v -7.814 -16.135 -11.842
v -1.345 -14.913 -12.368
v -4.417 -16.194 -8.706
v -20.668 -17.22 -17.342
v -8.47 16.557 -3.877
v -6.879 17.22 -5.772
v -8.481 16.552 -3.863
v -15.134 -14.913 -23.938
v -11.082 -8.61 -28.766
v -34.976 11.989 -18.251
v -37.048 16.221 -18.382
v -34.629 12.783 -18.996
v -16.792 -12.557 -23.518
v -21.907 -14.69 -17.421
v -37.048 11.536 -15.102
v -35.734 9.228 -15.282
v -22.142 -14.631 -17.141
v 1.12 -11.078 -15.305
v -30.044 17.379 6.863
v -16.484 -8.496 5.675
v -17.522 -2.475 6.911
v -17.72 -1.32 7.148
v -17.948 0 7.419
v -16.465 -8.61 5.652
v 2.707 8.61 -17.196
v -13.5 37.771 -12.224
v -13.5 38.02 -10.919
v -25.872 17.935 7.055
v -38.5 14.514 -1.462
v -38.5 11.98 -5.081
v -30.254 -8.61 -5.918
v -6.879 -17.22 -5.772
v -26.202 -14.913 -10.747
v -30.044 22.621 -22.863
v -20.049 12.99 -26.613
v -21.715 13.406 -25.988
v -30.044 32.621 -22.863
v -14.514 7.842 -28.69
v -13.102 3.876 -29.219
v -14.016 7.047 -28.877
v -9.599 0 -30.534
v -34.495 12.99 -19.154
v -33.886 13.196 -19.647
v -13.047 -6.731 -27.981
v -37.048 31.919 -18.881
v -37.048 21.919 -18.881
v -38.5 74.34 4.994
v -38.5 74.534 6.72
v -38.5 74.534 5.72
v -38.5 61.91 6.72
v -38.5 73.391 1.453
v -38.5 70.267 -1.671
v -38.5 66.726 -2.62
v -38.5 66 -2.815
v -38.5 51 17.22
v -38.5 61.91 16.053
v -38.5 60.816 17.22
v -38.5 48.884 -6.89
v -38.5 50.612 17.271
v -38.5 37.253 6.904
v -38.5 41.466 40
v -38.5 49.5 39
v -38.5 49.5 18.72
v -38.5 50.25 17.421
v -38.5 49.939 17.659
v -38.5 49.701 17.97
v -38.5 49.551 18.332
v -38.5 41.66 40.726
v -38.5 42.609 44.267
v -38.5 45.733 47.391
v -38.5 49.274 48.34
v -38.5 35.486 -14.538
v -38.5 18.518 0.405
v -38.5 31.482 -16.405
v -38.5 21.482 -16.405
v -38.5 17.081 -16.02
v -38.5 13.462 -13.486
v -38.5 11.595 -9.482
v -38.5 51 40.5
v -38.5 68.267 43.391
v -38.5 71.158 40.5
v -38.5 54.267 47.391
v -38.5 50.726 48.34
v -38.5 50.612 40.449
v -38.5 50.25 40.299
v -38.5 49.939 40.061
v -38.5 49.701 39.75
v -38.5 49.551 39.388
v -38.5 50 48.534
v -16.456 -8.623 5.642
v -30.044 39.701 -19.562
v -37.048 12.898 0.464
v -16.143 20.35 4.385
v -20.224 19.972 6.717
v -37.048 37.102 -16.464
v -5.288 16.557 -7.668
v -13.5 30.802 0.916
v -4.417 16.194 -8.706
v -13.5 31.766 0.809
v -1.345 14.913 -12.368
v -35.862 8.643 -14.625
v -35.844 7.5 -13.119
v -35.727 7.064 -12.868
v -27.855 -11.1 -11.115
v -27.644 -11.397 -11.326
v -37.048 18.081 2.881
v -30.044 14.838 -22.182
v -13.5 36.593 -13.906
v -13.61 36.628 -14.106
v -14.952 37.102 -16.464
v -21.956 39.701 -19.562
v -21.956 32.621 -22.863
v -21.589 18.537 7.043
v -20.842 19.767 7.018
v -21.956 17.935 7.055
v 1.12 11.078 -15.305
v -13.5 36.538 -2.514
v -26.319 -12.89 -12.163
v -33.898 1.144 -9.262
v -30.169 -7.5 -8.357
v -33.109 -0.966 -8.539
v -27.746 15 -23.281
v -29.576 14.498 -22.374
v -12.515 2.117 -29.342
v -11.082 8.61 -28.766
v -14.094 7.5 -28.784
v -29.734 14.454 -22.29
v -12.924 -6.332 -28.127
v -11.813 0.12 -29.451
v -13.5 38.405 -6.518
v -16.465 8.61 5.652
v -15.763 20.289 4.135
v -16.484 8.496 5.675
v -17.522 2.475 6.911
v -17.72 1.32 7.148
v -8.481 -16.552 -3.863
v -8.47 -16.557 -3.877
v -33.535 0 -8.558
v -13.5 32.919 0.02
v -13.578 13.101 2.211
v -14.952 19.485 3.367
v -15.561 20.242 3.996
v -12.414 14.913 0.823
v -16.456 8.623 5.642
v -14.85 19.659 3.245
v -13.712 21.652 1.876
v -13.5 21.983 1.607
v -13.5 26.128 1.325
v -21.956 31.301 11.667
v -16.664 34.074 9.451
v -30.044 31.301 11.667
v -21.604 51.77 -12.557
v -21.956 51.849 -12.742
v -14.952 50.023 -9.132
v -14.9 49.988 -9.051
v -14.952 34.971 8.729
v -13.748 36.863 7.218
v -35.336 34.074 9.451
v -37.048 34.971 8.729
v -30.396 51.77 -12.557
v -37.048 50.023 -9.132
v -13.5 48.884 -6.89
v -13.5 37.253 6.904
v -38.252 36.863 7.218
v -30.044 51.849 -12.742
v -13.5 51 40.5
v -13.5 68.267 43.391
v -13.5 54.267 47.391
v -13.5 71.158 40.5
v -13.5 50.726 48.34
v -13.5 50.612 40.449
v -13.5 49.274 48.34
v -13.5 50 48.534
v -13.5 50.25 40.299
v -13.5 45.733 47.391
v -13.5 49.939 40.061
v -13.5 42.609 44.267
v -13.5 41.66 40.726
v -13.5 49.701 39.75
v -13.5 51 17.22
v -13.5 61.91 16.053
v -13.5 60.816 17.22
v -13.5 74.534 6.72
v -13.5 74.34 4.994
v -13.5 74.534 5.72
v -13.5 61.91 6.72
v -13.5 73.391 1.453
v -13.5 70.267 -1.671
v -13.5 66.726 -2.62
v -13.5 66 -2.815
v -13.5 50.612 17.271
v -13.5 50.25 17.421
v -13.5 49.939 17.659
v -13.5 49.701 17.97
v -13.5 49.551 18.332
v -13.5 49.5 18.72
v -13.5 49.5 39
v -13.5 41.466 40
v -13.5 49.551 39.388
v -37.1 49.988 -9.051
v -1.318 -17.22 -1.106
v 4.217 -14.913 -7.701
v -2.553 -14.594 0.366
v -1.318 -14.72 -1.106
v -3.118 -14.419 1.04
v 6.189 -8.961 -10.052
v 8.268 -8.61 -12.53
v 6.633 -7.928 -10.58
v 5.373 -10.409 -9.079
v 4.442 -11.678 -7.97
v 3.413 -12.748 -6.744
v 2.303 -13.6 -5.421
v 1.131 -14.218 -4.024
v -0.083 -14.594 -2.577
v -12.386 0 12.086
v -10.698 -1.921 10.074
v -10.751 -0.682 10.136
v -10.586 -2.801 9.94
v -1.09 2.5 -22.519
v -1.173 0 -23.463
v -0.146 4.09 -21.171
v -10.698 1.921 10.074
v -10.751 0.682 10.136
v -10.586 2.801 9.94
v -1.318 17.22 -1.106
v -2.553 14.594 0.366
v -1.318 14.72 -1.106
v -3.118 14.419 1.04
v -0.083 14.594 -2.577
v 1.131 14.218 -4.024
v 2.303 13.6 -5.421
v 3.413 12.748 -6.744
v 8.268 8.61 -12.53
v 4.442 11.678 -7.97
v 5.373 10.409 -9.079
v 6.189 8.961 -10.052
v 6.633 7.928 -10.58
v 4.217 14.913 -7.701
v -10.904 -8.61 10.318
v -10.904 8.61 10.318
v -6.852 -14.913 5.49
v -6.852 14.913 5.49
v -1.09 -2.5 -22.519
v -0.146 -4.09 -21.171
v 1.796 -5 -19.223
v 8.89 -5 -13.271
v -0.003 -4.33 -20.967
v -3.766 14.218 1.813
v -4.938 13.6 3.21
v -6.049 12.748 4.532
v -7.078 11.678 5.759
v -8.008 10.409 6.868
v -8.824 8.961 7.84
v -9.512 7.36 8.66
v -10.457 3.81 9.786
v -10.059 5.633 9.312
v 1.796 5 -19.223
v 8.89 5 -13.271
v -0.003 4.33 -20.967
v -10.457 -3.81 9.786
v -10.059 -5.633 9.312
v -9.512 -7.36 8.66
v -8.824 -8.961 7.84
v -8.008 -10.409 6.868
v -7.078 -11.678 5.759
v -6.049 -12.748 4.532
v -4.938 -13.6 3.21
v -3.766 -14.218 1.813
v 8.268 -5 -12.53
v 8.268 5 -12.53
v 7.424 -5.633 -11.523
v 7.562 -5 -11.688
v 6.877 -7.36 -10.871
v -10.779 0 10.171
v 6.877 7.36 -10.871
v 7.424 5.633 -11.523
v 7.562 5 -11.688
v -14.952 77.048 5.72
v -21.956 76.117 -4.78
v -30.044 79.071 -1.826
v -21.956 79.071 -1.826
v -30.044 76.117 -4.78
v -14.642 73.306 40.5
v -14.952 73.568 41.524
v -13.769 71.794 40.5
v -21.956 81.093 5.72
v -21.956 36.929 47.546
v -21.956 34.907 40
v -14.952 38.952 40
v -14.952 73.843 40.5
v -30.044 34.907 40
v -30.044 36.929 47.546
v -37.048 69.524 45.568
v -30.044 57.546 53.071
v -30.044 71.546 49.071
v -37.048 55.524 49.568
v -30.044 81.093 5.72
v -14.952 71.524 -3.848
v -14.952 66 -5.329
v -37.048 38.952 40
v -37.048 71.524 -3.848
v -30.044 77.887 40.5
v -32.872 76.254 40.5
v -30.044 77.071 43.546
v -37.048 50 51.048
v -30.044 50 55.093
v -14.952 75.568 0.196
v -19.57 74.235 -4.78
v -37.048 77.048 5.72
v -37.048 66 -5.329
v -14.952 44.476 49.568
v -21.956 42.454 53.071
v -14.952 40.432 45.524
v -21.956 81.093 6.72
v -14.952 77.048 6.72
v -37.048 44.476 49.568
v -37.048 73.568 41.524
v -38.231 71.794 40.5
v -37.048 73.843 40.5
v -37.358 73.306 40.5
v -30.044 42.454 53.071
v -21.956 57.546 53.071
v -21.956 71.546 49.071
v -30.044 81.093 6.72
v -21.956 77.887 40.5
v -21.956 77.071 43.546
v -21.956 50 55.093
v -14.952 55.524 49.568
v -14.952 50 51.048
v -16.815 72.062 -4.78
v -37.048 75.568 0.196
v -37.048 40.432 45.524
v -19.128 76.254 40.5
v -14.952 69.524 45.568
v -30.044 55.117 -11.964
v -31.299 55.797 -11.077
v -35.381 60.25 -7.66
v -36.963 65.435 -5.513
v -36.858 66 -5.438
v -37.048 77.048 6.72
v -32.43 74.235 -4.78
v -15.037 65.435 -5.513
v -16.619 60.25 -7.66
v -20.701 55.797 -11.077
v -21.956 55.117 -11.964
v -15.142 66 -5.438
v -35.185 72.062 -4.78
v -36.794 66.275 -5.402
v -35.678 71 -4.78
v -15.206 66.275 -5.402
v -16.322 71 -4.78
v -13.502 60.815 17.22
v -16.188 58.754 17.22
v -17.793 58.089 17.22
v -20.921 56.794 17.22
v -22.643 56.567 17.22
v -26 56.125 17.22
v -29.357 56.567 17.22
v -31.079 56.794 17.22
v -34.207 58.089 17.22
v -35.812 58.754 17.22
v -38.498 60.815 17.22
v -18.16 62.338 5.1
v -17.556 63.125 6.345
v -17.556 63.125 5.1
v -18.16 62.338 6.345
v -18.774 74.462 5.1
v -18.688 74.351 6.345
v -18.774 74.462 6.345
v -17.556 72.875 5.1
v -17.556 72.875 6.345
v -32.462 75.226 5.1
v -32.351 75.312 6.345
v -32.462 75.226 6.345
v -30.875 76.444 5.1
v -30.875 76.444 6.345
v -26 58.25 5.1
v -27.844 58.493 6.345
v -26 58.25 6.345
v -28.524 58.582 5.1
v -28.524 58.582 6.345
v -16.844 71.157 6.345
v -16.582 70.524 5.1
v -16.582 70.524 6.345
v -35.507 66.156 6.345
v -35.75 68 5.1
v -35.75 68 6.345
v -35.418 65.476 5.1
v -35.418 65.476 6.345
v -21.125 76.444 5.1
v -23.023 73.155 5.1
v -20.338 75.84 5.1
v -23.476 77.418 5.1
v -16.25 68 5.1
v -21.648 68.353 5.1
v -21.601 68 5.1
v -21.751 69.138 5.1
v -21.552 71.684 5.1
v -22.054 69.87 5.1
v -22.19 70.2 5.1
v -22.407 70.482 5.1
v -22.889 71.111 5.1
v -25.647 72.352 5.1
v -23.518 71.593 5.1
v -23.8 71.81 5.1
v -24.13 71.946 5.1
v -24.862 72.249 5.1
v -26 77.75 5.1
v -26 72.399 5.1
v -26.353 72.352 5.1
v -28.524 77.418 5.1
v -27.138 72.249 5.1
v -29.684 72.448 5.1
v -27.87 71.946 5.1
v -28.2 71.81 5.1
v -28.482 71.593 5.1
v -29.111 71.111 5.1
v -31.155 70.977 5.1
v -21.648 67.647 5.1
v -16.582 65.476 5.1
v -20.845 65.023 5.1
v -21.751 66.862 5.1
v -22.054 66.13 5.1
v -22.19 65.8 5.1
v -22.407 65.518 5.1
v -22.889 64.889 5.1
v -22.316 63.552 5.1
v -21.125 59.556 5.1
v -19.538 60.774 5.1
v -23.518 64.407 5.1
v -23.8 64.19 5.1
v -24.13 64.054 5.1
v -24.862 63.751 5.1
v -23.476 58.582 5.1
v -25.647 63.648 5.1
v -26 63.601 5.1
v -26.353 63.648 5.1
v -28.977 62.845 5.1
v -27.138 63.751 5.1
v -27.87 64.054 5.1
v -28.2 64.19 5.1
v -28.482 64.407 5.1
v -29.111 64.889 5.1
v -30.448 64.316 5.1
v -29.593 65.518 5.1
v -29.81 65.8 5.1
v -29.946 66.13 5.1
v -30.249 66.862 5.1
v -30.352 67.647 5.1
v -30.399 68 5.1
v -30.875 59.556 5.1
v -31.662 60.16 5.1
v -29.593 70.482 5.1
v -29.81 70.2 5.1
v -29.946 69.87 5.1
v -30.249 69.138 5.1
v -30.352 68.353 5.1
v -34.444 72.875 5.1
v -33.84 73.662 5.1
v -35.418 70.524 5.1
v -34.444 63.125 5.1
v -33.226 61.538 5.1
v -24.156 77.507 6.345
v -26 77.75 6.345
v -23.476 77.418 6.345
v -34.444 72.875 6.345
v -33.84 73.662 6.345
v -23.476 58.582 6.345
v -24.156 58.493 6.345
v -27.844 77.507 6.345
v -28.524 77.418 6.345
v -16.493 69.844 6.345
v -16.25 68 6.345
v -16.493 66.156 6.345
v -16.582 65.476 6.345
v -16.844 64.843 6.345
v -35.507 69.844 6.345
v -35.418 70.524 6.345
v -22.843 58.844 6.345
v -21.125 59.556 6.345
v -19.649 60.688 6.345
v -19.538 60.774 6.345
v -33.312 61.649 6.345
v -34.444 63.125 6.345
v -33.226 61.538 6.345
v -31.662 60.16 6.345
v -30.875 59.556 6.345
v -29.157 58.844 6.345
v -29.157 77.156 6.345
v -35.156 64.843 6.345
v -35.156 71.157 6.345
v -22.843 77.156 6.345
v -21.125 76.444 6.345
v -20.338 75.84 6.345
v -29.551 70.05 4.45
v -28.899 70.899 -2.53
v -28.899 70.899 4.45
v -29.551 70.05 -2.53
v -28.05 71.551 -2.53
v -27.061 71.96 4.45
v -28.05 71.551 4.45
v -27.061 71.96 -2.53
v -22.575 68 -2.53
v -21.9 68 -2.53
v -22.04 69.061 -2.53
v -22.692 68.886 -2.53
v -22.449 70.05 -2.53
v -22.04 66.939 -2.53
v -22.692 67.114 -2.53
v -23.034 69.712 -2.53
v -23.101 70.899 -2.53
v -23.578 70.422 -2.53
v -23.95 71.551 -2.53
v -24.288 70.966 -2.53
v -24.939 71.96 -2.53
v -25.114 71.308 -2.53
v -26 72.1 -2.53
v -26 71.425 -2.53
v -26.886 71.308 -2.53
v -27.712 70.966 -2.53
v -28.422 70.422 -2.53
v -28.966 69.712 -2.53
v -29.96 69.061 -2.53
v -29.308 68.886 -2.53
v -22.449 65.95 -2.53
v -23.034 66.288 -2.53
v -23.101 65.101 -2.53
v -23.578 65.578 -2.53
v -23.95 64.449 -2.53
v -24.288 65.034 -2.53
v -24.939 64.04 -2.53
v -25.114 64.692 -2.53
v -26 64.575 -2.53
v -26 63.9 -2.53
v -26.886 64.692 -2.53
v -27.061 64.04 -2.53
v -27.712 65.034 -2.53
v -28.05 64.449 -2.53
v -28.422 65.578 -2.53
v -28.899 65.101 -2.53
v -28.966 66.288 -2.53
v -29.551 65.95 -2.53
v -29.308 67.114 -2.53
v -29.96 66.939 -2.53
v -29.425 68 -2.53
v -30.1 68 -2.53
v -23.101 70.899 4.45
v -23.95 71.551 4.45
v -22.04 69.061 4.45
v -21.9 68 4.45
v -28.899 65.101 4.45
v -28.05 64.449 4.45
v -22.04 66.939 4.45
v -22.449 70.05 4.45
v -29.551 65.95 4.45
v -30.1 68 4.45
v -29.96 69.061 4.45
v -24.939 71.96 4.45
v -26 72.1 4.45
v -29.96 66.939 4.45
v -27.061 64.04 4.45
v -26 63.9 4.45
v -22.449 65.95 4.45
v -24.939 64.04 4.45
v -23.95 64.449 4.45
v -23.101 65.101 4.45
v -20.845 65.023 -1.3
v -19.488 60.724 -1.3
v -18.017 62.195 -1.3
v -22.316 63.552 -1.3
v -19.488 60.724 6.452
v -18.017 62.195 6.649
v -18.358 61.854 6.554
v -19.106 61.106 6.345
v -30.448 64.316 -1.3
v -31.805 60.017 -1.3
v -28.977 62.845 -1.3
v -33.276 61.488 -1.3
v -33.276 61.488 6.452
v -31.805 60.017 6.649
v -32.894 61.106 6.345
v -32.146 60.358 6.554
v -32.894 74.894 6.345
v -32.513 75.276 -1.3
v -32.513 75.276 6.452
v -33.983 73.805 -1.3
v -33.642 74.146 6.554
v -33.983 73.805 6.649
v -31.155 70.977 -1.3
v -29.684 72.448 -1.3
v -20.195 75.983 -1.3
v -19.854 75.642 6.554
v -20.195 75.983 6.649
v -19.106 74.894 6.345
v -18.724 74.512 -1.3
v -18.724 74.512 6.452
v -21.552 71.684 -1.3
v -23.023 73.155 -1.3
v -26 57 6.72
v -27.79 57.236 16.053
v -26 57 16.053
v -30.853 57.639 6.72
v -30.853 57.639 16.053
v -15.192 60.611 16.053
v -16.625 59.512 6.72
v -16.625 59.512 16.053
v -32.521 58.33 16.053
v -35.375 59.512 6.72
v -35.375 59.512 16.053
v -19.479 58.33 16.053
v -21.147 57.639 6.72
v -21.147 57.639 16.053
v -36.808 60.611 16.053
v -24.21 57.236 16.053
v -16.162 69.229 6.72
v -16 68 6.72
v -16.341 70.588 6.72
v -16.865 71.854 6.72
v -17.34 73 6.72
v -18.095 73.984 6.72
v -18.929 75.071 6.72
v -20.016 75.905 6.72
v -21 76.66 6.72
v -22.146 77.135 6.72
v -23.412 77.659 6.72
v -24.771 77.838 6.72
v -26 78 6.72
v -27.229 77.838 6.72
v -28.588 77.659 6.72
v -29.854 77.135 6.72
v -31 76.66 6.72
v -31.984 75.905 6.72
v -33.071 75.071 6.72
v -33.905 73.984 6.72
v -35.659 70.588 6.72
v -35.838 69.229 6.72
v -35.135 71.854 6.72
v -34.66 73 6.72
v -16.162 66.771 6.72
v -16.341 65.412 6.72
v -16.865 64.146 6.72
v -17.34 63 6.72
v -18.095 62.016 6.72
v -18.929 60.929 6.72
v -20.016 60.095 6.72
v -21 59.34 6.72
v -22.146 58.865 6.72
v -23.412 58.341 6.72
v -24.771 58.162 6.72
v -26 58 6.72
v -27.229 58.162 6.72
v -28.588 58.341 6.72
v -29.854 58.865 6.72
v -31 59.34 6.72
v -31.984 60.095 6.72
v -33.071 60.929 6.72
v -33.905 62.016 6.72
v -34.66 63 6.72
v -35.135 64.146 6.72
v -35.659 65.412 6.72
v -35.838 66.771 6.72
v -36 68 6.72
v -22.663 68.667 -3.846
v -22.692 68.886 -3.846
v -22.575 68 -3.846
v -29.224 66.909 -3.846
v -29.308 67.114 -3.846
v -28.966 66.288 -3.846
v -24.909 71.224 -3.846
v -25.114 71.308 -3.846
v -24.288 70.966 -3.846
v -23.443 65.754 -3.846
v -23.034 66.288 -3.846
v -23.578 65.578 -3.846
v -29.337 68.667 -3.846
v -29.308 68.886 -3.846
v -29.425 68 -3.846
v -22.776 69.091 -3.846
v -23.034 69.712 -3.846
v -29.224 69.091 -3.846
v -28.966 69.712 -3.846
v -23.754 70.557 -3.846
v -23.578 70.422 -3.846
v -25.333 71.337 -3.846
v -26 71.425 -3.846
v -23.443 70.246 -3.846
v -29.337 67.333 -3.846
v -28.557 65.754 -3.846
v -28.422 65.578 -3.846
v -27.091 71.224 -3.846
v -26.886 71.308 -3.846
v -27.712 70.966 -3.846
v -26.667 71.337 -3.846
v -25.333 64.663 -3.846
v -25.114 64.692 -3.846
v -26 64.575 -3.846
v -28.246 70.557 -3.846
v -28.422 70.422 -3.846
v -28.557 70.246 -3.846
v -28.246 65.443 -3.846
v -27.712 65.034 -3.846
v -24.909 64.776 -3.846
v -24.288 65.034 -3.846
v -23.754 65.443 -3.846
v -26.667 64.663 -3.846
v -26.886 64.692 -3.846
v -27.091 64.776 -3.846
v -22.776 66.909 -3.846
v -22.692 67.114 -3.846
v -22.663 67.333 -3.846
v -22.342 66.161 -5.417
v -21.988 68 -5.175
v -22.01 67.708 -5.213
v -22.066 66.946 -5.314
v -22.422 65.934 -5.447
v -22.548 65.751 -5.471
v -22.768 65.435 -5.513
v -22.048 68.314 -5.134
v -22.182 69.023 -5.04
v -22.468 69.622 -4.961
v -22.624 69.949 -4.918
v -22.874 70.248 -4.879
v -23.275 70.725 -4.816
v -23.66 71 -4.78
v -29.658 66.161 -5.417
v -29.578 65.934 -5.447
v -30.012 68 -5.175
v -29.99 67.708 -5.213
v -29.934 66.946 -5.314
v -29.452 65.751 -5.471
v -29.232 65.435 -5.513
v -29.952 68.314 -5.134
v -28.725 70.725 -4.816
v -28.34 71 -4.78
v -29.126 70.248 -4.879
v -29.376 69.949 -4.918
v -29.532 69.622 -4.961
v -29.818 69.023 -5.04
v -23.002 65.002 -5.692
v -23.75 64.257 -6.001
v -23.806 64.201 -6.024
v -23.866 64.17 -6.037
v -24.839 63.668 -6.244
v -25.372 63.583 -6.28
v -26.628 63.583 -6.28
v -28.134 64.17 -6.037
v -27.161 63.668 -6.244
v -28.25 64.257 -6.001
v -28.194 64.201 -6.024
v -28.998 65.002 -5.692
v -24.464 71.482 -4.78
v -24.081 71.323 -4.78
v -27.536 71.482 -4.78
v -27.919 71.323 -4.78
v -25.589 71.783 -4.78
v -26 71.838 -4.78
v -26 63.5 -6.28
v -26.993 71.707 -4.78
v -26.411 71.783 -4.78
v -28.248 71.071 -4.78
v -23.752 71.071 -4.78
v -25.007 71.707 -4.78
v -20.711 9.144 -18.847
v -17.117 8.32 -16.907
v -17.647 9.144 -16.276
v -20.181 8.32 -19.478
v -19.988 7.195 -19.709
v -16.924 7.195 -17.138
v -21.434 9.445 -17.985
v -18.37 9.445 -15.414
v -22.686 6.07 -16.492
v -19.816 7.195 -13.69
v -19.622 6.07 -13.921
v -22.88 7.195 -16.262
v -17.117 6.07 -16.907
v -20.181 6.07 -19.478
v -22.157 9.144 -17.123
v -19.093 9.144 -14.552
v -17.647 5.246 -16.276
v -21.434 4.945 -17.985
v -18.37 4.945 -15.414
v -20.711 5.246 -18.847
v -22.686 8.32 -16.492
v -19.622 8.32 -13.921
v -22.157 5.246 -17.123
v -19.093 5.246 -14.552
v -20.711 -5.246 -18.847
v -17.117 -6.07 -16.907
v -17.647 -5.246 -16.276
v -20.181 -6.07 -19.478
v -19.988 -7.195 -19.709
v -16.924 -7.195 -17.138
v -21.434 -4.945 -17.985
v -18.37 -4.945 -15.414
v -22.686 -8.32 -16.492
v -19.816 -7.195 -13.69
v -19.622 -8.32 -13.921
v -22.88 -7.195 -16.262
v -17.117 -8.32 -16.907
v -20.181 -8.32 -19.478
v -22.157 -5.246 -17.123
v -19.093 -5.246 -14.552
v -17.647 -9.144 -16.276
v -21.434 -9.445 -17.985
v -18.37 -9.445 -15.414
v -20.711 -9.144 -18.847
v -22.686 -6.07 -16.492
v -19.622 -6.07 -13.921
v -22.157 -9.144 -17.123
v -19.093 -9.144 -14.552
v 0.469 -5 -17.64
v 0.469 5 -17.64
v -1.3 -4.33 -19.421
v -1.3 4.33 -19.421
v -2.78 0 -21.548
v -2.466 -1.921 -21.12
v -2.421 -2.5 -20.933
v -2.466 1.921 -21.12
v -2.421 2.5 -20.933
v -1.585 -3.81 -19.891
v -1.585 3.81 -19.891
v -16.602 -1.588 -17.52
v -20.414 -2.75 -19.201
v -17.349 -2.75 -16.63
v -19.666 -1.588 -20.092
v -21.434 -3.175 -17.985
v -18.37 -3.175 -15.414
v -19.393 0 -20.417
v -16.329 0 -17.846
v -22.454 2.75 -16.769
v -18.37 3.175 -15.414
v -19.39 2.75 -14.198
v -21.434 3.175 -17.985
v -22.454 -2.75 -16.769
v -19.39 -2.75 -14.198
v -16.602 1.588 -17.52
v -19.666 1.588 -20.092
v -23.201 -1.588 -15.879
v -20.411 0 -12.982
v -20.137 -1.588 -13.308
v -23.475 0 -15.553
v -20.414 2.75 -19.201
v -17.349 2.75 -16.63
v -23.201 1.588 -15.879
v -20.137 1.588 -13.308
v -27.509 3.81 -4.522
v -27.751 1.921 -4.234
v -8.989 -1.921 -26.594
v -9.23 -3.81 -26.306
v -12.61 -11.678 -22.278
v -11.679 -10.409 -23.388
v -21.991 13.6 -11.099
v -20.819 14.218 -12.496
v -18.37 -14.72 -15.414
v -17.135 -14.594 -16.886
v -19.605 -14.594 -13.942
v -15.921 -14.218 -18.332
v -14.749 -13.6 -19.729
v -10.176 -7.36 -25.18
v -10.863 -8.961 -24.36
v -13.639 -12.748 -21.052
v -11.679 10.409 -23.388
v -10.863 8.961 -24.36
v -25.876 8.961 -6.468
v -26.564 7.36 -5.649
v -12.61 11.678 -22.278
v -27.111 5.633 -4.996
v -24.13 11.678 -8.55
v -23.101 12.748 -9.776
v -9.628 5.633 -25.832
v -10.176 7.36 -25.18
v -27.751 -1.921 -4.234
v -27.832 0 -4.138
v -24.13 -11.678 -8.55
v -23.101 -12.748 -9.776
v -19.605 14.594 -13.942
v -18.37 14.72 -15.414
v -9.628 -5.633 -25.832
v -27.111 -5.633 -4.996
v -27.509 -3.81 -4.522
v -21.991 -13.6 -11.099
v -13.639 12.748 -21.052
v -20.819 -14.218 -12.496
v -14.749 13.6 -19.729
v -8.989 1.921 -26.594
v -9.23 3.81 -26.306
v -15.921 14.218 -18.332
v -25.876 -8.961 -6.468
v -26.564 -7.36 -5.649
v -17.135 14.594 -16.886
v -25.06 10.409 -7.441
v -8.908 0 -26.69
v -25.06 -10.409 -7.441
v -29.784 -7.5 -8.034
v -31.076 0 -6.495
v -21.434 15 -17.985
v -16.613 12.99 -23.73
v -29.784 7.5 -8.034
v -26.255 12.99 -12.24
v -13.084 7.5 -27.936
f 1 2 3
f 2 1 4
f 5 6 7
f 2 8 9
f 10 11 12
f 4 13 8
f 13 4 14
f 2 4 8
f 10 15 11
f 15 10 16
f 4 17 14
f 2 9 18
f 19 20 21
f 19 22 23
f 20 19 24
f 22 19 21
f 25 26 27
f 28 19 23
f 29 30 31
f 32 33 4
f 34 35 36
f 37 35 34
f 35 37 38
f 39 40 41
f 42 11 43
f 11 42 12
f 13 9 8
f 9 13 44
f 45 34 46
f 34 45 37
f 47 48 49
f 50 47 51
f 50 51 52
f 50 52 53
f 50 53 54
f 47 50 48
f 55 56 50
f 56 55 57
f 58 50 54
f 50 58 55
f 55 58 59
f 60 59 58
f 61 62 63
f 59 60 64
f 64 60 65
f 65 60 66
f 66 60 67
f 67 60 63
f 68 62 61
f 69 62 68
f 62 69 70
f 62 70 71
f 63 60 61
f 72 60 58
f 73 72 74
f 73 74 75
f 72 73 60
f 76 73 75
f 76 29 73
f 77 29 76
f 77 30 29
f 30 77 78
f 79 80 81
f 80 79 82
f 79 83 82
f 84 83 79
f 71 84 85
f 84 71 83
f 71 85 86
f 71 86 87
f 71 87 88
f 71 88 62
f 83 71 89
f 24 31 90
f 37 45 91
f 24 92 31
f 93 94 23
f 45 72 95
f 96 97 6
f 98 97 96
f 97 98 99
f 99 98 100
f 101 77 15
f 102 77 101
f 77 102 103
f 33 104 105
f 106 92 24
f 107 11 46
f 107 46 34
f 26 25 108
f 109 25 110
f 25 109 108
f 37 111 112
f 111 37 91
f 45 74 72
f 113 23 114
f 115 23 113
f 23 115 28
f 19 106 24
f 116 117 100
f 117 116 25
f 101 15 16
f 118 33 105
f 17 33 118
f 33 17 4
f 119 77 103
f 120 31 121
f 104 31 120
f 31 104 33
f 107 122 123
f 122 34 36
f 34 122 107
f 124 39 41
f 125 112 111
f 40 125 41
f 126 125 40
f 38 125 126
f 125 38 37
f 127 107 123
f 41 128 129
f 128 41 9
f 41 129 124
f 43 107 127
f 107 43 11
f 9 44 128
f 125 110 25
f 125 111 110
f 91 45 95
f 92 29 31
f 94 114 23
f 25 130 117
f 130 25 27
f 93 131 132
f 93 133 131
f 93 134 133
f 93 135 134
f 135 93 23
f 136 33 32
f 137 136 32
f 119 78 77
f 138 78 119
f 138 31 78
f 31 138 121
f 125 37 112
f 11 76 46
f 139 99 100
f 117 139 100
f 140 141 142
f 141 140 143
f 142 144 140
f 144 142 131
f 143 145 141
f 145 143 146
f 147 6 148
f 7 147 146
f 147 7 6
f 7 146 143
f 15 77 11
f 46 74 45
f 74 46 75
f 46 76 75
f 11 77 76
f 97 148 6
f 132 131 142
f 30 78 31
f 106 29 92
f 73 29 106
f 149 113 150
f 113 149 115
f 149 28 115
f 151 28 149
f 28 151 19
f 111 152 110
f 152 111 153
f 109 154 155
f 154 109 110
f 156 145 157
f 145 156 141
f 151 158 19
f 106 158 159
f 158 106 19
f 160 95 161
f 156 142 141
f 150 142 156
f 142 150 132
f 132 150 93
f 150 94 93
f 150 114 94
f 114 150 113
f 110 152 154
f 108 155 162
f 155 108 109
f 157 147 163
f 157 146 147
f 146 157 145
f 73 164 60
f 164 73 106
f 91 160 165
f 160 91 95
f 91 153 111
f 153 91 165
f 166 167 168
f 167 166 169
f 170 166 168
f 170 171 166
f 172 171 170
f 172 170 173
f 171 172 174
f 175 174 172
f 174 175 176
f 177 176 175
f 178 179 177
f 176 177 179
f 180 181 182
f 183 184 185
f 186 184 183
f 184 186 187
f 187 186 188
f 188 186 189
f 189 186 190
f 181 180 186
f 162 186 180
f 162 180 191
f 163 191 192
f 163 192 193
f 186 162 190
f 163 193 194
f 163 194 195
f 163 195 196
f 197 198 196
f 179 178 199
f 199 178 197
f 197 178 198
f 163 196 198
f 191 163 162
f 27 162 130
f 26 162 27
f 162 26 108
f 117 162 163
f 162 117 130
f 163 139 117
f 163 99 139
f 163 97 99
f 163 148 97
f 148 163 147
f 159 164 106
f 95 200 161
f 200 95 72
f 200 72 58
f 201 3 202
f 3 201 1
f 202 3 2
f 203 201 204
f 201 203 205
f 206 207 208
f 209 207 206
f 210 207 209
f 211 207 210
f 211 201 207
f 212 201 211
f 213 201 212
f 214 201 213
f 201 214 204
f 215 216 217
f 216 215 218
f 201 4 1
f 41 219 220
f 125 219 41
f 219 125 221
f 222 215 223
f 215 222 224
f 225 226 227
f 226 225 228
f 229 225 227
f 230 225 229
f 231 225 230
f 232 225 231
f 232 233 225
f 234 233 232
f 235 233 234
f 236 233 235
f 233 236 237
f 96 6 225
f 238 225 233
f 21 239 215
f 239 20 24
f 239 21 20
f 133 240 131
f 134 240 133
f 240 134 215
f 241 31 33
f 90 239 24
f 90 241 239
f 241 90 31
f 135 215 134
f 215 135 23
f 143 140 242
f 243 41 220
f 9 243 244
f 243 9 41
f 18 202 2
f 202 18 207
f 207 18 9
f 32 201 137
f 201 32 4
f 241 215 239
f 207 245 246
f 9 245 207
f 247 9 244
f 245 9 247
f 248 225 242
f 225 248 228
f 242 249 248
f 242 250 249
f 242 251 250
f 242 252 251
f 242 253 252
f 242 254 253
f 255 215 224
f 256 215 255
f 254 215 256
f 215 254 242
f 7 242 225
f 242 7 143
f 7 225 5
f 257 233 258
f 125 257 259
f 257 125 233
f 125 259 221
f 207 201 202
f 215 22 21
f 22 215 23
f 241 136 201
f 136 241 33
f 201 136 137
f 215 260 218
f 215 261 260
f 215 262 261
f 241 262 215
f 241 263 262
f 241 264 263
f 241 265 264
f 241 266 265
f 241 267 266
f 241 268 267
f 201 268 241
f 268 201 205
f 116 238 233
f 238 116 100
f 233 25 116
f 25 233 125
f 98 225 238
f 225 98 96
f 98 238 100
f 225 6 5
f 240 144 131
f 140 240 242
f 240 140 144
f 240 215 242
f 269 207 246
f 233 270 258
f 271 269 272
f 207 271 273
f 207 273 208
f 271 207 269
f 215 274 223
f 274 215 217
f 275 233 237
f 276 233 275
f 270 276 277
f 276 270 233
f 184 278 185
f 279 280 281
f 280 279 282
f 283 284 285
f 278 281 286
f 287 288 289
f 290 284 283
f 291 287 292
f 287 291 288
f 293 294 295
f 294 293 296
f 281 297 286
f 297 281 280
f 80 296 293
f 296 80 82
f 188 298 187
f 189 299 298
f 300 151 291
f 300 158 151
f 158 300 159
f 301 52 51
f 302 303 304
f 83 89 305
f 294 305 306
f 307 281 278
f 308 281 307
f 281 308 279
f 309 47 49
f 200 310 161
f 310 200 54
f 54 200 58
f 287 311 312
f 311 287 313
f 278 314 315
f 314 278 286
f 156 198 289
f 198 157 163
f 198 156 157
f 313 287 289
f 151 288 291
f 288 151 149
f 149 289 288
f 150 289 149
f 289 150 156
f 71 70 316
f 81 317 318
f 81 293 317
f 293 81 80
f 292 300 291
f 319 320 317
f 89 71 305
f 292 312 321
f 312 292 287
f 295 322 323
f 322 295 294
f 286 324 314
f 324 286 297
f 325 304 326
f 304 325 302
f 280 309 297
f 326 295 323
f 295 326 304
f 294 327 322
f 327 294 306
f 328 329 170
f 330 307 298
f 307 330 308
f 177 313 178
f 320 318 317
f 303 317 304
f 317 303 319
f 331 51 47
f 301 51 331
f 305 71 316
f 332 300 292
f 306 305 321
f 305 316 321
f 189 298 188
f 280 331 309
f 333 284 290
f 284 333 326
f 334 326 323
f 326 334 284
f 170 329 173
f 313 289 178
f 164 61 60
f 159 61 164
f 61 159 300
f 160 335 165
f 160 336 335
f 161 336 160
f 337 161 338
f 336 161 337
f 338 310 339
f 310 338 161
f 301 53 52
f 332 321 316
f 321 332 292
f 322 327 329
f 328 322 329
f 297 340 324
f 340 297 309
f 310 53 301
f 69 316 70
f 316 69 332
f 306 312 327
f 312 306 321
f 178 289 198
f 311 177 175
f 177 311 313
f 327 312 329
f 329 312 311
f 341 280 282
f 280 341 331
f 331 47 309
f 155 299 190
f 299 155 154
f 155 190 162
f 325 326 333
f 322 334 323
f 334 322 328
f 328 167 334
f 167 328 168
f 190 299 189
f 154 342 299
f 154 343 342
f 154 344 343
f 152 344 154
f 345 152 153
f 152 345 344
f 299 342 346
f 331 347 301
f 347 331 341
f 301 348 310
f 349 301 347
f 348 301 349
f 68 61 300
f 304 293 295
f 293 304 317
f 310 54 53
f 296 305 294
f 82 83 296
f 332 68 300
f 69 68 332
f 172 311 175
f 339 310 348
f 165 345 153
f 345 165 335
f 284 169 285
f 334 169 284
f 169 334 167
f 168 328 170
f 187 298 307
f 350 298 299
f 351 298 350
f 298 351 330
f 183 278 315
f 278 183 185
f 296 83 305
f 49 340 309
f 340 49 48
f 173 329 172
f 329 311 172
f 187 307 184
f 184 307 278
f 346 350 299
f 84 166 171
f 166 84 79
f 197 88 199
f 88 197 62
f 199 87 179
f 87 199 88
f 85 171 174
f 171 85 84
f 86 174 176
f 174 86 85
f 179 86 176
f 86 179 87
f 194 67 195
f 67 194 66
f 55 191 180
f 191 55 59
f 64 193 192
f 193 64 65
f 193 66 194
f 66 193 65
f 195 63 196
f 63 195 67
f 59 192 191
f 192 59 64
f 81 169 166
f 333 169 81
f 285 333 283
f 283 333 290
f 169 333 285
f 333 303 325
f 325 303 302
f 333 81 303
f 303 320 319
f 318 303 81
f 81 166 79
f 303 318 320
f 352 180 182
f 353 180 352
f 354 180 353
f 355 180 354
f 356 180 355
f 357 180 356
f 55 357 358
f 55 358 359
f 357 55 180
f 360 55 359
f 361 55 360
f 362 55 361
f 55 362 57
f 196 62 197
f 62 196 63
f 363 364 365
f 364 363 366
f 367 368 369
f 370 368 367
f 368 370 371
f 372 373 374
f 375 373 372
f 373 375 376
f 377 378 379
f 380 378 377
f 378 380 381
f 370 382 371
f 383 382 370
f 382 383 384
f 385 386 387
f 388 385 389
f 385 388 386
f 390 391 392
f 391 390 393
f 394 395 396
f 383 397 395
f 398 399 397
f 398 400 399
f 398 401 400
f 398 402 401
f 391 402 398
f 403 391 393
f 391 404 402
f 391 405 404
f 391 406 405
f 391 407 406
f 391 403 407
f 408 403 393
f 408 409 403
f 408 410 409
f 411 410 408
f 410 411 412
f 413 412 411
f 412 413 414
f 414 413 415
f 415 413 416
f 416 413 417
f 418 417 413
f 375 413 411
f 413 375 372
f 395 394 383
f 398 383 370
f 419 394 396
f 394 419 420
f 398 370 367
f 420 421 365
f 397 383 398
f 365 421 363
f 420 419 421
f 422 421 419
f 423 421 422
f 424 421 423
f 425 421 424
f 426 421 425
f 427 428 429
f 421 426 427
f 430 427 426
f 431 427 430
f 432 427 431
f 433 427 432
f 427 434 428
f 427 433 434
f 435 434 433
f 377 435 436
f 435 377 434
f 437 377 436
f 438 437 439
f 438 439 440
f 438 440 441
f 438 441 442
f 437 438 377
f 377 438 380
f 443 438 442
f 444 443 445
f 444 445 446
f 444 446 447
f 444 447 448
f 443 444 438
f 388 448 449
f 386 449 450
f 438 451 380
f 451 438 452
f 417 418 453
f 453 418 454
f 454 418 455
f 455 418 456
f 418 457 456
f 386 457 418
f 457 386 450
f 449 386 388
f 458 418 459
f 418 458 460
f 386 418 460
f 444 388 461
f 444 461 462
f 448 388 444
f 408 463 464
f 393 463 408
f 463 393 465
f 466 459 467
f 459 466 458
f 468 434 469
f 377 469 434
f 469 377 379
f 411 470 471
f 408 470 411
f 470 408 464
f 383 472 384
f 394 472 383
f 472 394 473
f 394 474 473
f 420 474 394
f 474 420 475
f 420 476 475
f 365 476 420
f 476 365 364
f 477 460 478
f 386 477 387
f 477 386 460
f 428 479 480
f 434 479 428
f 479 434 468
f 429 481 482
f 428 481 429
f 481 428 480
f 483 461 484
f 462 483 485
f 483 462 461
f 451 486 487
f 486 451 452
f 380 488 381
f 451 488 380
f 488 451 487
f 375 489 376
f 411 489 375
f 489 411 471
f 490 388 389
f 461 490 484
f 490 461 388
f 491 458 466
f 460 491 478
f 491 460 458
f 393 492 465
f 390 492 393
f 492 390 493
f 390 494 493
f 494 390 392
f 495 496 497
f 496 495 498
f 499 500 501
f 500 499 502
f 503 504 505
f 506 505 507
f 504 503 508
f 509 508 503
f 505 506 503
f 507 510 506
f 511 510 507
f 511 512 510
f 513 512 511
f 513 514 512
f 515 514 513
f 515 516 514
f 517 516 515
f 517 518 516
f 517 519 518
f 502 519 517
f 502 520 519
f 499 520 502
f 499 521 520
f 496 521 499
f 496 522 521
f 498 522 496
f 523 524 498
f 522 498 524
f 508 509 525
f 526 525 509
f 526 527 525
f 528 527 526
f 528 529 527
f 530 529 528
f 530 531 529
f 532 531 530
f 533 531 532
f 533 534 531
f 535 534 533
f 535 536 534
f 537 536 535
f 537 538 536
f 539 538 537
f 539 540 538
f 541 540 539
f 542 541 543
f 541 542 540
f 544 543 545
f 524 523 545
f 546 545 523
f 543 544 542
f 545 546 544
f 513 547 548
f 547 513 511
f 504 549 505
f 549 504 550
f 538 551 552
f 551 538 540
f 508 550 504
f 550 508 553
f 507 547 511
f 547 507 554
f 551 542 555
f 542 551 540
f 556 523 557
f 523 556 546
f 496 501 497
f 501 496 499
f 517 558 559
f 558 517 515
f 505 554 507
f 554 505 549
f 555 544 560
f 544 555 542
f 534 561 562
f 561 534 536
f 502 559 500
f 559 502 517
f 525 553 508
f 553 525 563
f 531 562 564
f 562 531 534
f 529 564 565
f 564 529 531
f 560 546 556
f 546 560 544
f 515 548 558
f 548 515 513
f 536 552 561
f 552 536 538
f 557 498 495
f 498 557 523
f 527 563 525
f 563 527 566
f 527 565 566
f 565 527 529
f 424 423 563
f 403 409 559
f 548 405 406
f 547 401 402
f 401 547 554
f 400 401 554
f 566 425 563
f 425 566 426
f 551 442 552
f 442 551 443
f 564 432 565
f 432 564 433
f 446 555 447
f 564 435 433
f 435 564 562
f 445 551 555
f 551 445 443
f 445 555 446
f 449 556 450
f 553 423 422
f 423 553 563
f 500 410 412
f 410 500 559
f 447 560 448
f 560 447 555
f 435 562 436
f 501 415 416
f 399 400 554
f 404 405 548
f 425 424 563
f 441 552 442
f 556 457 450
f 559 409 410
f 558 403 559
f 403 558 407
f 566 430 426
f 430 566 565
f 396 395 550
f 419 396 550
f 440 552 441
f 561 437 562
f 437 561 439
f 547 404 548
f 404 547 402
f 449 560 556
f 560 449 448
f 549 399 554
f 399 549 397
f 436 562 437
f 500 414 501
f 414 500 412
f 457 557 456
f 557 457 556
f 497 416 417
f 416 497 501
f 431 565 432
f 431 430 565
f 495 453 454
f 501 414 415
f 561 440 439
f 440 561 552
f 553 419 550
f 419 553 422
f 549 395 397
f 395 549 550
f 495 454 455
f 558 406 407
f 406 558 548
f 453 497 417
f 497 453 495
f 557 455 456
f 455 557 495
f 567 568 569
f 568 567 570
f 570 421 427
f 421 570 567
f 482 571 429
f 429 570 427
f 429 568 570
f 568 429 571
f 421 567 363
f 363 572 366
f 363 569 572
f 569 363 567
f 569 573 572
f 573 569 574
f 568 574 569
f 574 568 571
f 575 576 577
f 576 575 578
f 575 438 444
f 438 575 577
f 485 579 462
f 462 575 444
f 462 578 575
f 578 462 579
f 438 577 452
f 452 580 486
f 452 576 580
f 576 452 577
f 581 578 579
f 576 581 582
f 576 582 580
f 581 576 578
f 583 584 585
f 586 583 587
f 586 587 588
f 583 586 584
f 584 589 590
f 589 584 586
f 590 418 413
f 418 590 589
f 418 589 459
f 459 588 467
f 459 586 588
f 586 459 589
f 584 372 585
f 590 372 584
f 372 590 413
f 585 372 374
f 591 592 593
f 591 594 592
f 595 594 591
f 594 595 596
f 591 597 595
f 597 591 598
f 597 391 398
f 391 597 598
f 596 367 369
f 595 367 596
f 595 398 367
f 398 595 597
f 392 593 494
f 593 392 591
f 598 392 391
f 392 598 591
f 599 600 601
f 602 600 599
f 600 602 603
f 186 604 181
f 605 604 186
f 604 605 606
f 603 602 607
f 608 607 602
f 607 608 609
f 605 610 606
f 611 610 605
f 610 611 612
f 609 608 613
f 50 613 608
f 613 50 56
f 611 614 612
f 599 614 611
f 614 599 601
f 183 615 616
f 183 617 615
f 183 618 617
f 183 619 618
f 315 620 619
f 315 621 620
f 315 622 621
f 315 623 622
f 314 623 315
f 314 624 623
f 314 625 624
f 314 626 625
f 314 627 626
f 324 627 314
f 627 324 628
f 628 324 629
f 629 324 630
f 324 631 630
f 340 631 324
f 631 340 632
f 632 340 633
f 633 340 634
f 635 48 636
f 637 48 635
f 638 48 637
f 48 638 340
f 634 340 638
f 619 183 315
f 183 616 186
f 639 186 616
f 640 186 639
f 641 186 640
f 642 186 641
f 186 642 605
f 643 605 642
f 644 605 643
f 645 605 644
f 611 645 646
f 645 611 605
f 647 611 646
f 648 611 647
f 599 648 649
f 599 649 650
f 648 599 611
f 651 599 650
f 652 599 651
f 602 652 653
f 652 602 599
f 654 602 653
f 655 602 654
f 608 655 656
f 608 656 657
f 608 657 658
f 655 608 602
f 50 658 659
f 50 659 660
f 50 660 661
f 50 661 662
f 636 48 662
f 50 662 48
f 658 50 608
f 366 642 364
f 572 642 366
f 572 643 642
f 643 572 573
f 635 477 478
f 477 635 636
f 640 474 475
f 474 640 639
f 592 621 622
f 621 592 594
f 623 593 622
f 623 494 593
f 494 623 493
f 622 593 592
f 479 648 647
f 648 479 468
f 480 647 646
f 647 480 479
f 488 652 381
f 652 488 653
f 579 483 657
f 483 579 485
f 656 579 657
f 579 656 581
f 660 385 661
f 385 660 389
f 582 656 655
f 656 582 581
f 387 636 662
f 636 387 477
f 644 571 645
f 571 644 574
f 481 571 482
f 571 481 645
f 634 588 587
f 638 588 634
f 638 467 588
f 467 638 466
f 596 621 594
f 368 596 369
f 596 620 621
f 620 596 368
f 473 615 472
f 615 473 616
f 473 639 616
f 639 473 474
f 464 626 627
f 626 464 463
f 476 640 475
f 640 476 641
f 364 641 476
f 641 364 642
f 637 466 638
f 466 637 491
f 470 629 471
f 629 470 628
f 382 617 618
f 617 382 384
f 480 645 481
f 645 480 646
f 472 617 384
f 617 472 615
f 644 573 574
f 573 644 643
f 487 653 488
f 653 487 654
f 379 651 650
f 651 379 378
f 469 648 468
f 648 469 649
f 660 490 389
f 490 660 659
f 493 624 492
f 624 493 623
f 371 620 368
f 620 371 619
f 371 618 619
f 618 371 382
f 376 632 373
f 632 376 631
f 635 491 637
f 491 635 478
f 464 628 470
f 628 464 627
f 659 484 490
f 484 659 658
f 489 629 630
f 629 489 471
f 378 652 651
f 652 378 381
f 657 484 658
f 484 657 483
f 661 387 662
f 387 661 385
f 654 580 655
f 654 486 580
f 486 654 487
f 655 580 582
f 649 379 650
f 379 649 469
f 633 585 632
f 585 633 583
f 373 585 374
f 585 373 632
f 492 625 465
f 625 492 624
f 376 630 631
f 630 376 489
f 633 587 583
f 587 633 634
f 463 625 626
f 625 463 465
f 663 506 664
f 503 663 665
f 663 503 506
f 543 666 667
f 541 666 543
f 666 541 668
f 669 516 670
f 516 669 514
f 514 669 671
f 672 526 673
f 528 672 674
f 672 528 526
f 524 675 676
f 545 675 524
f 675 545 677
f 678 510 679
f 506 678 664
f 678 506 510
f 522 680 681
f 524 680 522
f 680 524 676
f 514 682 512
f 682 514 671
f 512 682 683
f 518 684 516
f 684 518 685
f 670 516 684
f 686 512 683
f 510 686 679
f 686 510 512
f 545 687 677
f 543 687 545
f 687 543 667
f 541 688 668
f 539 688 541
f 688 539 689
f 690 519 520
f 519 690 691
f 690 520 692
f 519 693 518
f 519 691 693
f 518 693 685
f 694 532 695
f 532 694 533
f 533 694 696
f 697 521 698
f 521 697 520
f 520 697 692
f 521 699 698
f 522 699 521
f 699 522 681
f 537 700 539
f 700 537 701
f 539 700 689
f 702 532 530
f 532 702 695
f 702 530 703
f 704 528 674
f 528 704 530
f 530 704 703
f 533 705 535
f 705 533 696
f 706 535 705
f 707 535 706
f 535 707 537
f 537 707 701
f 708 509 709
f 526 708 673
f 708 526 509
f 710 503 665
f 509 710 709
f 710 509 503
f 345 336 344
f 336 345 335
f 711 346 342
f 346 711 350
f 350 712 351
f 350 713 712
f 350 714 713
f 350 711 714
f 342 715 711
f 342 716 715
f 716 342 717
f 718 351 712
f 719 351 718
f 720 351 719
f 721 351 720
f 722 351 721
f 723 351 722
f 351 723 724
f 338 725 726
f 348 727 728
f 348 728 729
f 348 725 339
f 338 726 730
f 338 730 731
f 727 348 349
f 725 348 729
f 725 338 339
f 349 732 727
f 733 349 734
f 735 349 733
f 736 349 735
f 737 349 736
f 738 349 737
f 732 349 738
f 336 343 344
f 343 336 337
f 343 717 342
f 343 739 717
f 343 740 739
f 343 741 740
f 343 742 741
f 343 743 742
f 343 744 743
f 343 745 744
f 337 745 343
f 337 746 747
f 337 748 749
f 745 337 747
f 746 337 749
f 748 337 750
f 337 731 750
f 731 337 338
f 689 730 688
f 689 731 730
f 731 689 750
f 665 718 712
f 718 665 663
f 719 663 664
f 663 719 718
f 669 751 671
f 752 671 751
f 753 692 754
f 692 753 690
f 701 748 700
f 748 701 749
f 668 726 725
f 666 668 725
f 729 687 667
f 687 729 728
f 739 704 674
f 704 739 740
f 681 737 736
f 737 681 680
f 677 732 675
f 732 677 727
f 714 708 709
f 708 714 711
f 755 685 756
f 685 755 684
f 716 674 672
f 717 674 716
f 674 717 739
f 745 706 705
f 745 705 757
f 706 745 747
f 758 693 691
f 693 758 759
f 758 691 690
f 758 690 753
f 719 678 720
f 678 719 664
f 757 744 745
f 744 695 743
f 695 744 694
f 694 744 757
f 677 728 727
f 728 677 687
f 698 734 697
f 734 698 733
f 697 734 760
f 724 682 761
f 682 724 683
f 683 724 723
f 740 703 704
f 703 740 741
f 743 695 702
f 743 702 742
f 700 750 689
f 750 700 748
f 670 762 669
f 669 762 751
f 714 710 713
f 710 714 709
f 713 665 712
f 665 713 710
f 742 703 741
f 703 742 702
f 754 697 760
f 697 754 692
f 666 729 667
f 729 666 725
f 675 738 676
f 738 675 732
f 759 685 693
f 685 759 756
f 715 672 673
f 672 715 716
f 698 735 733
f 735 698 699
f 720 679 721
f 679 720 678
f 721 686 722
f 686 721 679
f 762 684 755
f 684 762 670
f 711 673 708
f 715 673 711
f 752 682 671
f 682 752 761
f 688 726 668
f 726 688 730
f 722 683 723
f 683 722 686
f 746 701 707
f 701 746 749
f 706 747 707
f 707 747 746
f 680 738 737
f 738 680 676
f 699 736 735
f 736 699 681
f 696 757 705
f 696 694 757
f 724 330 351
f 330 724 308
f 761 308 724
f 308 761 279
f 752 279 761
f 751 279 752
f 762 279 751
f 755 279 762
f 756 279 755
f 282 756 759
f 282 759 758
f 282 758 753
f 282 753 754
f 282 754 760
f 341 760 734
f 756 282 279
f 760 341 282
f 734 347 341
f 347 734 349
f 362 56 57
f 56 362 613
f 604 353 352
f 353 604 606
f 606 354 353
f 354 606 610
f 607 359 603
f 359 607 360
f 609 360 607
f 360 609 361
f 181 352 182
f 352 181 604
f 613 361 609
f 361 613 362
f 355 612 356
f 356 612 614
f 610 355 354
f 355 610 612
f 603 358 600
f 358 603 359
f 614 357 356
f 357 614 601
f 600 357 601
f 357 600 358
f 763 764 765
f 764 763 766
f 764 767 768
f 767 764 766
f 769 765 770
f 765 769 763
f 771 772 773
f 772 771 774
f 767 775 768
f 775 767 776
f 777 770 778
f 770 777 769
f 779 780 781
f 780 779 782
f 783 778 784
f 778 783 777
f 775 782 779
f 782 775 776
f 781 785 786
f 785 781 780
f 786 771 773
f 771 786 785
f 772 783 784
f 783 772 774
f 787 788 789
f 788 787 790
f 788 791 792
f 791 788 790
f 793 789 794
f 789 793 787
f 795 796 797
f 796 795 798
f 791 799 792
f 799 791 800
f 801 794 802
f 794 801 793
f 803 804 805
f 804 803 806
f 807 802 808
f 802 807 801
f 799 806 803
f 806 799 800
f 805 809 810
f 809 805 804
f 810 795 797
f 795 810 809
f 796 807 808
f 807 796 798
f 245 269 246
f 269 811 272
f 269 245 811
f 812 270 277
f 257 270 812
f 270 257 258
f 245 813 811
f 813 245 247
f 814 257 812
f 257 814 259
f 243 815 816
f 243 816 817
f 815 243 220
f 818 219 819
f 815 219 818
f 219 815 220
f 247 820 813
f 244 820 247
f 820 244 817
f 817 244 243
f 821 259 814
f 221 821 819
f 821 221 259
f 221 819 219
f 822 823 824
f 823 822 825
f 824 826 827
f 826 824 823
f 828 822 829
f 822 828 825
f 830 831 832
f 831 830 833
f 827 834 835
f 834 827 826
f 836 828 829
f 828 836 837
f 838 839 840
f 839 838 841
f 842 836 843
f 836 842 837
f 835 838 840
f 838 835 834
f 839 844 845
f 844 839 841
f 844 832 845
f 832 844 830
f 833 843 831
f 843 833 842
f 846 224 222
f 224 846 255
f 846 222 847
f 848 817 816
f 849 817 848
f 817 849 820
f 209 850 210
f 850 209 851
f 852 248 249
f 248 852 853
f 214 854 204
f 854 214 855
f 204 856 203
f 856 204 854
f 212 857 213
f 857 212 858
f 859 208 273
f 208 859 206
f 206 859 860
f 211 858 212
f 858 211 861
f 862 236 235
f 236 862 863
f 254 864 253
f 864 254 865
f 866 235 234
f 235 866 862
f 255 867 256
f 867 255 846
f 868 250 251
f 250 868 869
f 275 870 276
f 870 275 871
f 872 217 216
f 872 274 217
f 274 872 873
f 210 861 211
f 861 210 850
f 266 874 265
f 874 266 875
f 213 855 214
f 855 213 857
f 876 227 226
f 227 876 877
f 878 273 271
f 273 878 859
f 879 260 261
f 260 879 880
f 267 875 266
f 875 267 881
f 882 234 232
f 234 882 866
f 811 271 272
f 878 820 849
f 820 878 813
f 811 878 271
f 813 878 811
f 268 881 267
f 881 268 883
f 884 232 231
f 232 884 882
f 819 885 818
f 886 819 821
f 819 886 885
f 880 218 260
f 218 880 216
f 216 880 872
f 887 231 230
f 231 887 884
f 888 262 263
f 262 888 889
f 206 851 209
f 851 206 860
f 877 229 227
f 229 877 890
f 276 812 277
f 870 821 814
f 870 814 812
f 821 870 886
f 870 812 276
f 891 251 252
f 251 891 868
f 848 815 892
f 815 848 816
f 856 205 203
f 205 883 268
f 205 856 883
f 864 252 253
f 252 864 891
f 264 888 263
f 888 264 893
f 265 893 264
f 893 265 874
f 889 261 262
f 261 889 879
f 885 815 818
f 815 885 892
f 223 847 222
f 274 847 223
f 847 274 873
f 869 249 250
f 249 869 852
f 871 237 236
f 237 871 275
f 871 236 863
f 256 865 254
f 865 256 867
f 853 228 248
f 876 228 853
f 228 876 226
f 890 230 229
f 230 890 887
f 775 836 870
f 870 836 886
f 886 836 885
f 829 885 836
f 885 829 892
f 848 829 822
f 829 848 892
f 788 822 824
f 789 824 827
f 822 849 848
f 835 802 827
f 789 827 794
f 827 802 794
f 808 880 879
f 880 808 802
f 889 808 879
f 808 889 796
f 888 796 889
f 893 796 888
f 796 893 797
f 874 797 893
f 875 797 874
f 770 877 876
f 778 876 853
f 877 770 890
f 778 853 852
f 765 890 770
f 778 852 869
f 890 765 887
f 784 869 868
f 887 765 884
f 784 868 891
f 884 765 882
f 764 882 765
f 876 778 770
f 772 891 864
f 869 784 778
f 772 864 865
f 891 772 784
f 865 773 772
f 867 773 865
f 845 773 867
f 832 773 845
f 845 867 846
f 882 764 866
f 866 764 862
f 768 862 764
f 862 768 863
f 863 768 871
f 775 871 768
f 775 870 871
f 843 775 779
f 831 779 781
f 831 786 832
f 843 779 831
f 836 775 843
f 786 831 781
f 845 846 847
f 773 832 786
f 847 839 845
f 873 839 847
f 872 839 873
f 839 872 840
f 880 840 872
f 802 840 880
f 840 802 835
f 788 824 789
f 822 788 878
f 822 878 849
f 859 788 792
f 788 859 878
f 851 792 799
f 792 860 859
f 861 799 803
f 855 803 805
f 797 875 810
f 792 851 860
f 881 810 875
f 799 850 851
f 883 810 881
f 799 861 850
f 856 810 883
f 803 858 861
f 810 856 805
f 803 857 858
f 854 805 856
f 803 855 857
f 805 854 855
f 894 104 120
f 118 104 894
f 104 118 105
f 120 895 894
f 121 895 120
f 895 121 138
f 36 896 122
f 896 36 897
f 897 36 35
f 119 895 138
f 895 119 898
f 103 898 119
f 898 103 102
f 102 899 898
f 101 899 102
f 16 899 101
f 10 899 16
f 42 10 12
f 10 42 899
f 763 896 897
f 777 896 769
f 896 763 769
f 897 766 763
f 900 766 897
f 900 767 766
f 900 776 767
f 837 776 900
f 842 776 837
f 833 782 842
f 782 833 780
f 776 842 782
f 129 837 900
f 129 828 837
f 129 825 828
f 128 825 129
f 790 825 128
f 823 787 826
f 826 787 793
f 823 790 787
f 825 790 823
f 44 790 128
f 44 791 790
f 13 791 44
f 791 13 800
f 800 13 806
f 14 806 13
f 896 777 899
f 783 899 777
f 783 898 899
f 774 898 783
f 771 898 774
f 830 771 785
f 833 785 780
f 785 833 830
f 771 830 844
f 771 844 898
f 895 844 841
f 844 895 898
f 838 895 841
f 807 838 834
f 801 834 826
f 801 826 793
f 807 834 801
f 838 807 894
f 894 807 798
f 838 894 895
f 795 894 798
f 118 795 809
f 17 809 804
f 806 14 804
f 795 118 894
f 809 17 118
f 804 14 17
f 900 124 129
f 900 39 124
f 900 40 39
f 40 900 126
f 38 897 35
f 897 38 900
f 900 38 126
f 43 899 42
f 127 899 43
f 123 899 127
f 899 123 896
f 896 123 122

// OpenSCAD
use <../scad-utils/linalg.scad>
use <../scad-utils/transformations.scad>
use <../geometry.scad>
use <../util.scad>
use <clamp.scad>

include <../definitions.scad>

module table_hook(offset=[0, 0, 0]) {
  if (!is_undef($render_accessories) && $render_accessories) {
    translate(offset) translate(desk_top_offset) clamp_accessories();
  }

  difference() {
    union() {
      multmatrix(ball_mount_base_orientation)
      translate([0, 0, -23.98 - 3])
        cylinder(d=ball_mount_diameter + 2*ball_mount_socket_thickness, h=29.26 -5 +1);

      triangle_hulls() {
        multmatrix(ball_mount_base_orientation)
        translate([0, 0, -23.98 - 3])
          cylinder(d=ball_mount_diameter + 2*ball_mount_socket_thickness, h=22 -5 +1);

        translate([-26, 20, -8]) rotate([10, 0, 0]) truncated_sphere(r=desk_arm_radius, rr=desk_arm_trunc);
        translate([-26, 30, -8]) rotate([10, 0, 0]) truncated_sphere(r=desk_arm_radius, rr=desk_arm_trunc);
        translate(offset) translate(desk_top_offset) clamp_base();
      }

      translate(offset) translate(desk_top_offset) clamp();
    }

    translate(offset) translate(desk_top_offset) clamp_cutouts();

    multmatrix(ball_mount_base_orientation)
    translate([0, 0, -ball_mount_height]) {
      rotate([0, 0, 90]) {
        translate([0, 10.39 + 4, 0]/2) cylinder(d=4.5, h=40, center=true);
        translate([0, 10.39 + 4, 0]/-2) cylinder(d=4.5, h=40, center=true);
      }
      cylinder(d=6.35, h=40, center=true);
      translate([0, 0, 0]) cylinder(d=ball_mount_diameter + 1, h=29.26 +1, $fn=48);
      translate([0, 0, -4]) rotate([180, 0, 0]) cylinder(d=30, h=15);

      translate([0, ball_mount_diameter/2, 18]) {
        cube([10, 10, 10], center=true);
        translate([0, 0, -5]) rotate([90, 0, 0]) cylinder(d=10, h=15, center=true);
      }
    }
  }
}

table_hook([-26, 0, 0], $render_accessories=false, $fn=12);
